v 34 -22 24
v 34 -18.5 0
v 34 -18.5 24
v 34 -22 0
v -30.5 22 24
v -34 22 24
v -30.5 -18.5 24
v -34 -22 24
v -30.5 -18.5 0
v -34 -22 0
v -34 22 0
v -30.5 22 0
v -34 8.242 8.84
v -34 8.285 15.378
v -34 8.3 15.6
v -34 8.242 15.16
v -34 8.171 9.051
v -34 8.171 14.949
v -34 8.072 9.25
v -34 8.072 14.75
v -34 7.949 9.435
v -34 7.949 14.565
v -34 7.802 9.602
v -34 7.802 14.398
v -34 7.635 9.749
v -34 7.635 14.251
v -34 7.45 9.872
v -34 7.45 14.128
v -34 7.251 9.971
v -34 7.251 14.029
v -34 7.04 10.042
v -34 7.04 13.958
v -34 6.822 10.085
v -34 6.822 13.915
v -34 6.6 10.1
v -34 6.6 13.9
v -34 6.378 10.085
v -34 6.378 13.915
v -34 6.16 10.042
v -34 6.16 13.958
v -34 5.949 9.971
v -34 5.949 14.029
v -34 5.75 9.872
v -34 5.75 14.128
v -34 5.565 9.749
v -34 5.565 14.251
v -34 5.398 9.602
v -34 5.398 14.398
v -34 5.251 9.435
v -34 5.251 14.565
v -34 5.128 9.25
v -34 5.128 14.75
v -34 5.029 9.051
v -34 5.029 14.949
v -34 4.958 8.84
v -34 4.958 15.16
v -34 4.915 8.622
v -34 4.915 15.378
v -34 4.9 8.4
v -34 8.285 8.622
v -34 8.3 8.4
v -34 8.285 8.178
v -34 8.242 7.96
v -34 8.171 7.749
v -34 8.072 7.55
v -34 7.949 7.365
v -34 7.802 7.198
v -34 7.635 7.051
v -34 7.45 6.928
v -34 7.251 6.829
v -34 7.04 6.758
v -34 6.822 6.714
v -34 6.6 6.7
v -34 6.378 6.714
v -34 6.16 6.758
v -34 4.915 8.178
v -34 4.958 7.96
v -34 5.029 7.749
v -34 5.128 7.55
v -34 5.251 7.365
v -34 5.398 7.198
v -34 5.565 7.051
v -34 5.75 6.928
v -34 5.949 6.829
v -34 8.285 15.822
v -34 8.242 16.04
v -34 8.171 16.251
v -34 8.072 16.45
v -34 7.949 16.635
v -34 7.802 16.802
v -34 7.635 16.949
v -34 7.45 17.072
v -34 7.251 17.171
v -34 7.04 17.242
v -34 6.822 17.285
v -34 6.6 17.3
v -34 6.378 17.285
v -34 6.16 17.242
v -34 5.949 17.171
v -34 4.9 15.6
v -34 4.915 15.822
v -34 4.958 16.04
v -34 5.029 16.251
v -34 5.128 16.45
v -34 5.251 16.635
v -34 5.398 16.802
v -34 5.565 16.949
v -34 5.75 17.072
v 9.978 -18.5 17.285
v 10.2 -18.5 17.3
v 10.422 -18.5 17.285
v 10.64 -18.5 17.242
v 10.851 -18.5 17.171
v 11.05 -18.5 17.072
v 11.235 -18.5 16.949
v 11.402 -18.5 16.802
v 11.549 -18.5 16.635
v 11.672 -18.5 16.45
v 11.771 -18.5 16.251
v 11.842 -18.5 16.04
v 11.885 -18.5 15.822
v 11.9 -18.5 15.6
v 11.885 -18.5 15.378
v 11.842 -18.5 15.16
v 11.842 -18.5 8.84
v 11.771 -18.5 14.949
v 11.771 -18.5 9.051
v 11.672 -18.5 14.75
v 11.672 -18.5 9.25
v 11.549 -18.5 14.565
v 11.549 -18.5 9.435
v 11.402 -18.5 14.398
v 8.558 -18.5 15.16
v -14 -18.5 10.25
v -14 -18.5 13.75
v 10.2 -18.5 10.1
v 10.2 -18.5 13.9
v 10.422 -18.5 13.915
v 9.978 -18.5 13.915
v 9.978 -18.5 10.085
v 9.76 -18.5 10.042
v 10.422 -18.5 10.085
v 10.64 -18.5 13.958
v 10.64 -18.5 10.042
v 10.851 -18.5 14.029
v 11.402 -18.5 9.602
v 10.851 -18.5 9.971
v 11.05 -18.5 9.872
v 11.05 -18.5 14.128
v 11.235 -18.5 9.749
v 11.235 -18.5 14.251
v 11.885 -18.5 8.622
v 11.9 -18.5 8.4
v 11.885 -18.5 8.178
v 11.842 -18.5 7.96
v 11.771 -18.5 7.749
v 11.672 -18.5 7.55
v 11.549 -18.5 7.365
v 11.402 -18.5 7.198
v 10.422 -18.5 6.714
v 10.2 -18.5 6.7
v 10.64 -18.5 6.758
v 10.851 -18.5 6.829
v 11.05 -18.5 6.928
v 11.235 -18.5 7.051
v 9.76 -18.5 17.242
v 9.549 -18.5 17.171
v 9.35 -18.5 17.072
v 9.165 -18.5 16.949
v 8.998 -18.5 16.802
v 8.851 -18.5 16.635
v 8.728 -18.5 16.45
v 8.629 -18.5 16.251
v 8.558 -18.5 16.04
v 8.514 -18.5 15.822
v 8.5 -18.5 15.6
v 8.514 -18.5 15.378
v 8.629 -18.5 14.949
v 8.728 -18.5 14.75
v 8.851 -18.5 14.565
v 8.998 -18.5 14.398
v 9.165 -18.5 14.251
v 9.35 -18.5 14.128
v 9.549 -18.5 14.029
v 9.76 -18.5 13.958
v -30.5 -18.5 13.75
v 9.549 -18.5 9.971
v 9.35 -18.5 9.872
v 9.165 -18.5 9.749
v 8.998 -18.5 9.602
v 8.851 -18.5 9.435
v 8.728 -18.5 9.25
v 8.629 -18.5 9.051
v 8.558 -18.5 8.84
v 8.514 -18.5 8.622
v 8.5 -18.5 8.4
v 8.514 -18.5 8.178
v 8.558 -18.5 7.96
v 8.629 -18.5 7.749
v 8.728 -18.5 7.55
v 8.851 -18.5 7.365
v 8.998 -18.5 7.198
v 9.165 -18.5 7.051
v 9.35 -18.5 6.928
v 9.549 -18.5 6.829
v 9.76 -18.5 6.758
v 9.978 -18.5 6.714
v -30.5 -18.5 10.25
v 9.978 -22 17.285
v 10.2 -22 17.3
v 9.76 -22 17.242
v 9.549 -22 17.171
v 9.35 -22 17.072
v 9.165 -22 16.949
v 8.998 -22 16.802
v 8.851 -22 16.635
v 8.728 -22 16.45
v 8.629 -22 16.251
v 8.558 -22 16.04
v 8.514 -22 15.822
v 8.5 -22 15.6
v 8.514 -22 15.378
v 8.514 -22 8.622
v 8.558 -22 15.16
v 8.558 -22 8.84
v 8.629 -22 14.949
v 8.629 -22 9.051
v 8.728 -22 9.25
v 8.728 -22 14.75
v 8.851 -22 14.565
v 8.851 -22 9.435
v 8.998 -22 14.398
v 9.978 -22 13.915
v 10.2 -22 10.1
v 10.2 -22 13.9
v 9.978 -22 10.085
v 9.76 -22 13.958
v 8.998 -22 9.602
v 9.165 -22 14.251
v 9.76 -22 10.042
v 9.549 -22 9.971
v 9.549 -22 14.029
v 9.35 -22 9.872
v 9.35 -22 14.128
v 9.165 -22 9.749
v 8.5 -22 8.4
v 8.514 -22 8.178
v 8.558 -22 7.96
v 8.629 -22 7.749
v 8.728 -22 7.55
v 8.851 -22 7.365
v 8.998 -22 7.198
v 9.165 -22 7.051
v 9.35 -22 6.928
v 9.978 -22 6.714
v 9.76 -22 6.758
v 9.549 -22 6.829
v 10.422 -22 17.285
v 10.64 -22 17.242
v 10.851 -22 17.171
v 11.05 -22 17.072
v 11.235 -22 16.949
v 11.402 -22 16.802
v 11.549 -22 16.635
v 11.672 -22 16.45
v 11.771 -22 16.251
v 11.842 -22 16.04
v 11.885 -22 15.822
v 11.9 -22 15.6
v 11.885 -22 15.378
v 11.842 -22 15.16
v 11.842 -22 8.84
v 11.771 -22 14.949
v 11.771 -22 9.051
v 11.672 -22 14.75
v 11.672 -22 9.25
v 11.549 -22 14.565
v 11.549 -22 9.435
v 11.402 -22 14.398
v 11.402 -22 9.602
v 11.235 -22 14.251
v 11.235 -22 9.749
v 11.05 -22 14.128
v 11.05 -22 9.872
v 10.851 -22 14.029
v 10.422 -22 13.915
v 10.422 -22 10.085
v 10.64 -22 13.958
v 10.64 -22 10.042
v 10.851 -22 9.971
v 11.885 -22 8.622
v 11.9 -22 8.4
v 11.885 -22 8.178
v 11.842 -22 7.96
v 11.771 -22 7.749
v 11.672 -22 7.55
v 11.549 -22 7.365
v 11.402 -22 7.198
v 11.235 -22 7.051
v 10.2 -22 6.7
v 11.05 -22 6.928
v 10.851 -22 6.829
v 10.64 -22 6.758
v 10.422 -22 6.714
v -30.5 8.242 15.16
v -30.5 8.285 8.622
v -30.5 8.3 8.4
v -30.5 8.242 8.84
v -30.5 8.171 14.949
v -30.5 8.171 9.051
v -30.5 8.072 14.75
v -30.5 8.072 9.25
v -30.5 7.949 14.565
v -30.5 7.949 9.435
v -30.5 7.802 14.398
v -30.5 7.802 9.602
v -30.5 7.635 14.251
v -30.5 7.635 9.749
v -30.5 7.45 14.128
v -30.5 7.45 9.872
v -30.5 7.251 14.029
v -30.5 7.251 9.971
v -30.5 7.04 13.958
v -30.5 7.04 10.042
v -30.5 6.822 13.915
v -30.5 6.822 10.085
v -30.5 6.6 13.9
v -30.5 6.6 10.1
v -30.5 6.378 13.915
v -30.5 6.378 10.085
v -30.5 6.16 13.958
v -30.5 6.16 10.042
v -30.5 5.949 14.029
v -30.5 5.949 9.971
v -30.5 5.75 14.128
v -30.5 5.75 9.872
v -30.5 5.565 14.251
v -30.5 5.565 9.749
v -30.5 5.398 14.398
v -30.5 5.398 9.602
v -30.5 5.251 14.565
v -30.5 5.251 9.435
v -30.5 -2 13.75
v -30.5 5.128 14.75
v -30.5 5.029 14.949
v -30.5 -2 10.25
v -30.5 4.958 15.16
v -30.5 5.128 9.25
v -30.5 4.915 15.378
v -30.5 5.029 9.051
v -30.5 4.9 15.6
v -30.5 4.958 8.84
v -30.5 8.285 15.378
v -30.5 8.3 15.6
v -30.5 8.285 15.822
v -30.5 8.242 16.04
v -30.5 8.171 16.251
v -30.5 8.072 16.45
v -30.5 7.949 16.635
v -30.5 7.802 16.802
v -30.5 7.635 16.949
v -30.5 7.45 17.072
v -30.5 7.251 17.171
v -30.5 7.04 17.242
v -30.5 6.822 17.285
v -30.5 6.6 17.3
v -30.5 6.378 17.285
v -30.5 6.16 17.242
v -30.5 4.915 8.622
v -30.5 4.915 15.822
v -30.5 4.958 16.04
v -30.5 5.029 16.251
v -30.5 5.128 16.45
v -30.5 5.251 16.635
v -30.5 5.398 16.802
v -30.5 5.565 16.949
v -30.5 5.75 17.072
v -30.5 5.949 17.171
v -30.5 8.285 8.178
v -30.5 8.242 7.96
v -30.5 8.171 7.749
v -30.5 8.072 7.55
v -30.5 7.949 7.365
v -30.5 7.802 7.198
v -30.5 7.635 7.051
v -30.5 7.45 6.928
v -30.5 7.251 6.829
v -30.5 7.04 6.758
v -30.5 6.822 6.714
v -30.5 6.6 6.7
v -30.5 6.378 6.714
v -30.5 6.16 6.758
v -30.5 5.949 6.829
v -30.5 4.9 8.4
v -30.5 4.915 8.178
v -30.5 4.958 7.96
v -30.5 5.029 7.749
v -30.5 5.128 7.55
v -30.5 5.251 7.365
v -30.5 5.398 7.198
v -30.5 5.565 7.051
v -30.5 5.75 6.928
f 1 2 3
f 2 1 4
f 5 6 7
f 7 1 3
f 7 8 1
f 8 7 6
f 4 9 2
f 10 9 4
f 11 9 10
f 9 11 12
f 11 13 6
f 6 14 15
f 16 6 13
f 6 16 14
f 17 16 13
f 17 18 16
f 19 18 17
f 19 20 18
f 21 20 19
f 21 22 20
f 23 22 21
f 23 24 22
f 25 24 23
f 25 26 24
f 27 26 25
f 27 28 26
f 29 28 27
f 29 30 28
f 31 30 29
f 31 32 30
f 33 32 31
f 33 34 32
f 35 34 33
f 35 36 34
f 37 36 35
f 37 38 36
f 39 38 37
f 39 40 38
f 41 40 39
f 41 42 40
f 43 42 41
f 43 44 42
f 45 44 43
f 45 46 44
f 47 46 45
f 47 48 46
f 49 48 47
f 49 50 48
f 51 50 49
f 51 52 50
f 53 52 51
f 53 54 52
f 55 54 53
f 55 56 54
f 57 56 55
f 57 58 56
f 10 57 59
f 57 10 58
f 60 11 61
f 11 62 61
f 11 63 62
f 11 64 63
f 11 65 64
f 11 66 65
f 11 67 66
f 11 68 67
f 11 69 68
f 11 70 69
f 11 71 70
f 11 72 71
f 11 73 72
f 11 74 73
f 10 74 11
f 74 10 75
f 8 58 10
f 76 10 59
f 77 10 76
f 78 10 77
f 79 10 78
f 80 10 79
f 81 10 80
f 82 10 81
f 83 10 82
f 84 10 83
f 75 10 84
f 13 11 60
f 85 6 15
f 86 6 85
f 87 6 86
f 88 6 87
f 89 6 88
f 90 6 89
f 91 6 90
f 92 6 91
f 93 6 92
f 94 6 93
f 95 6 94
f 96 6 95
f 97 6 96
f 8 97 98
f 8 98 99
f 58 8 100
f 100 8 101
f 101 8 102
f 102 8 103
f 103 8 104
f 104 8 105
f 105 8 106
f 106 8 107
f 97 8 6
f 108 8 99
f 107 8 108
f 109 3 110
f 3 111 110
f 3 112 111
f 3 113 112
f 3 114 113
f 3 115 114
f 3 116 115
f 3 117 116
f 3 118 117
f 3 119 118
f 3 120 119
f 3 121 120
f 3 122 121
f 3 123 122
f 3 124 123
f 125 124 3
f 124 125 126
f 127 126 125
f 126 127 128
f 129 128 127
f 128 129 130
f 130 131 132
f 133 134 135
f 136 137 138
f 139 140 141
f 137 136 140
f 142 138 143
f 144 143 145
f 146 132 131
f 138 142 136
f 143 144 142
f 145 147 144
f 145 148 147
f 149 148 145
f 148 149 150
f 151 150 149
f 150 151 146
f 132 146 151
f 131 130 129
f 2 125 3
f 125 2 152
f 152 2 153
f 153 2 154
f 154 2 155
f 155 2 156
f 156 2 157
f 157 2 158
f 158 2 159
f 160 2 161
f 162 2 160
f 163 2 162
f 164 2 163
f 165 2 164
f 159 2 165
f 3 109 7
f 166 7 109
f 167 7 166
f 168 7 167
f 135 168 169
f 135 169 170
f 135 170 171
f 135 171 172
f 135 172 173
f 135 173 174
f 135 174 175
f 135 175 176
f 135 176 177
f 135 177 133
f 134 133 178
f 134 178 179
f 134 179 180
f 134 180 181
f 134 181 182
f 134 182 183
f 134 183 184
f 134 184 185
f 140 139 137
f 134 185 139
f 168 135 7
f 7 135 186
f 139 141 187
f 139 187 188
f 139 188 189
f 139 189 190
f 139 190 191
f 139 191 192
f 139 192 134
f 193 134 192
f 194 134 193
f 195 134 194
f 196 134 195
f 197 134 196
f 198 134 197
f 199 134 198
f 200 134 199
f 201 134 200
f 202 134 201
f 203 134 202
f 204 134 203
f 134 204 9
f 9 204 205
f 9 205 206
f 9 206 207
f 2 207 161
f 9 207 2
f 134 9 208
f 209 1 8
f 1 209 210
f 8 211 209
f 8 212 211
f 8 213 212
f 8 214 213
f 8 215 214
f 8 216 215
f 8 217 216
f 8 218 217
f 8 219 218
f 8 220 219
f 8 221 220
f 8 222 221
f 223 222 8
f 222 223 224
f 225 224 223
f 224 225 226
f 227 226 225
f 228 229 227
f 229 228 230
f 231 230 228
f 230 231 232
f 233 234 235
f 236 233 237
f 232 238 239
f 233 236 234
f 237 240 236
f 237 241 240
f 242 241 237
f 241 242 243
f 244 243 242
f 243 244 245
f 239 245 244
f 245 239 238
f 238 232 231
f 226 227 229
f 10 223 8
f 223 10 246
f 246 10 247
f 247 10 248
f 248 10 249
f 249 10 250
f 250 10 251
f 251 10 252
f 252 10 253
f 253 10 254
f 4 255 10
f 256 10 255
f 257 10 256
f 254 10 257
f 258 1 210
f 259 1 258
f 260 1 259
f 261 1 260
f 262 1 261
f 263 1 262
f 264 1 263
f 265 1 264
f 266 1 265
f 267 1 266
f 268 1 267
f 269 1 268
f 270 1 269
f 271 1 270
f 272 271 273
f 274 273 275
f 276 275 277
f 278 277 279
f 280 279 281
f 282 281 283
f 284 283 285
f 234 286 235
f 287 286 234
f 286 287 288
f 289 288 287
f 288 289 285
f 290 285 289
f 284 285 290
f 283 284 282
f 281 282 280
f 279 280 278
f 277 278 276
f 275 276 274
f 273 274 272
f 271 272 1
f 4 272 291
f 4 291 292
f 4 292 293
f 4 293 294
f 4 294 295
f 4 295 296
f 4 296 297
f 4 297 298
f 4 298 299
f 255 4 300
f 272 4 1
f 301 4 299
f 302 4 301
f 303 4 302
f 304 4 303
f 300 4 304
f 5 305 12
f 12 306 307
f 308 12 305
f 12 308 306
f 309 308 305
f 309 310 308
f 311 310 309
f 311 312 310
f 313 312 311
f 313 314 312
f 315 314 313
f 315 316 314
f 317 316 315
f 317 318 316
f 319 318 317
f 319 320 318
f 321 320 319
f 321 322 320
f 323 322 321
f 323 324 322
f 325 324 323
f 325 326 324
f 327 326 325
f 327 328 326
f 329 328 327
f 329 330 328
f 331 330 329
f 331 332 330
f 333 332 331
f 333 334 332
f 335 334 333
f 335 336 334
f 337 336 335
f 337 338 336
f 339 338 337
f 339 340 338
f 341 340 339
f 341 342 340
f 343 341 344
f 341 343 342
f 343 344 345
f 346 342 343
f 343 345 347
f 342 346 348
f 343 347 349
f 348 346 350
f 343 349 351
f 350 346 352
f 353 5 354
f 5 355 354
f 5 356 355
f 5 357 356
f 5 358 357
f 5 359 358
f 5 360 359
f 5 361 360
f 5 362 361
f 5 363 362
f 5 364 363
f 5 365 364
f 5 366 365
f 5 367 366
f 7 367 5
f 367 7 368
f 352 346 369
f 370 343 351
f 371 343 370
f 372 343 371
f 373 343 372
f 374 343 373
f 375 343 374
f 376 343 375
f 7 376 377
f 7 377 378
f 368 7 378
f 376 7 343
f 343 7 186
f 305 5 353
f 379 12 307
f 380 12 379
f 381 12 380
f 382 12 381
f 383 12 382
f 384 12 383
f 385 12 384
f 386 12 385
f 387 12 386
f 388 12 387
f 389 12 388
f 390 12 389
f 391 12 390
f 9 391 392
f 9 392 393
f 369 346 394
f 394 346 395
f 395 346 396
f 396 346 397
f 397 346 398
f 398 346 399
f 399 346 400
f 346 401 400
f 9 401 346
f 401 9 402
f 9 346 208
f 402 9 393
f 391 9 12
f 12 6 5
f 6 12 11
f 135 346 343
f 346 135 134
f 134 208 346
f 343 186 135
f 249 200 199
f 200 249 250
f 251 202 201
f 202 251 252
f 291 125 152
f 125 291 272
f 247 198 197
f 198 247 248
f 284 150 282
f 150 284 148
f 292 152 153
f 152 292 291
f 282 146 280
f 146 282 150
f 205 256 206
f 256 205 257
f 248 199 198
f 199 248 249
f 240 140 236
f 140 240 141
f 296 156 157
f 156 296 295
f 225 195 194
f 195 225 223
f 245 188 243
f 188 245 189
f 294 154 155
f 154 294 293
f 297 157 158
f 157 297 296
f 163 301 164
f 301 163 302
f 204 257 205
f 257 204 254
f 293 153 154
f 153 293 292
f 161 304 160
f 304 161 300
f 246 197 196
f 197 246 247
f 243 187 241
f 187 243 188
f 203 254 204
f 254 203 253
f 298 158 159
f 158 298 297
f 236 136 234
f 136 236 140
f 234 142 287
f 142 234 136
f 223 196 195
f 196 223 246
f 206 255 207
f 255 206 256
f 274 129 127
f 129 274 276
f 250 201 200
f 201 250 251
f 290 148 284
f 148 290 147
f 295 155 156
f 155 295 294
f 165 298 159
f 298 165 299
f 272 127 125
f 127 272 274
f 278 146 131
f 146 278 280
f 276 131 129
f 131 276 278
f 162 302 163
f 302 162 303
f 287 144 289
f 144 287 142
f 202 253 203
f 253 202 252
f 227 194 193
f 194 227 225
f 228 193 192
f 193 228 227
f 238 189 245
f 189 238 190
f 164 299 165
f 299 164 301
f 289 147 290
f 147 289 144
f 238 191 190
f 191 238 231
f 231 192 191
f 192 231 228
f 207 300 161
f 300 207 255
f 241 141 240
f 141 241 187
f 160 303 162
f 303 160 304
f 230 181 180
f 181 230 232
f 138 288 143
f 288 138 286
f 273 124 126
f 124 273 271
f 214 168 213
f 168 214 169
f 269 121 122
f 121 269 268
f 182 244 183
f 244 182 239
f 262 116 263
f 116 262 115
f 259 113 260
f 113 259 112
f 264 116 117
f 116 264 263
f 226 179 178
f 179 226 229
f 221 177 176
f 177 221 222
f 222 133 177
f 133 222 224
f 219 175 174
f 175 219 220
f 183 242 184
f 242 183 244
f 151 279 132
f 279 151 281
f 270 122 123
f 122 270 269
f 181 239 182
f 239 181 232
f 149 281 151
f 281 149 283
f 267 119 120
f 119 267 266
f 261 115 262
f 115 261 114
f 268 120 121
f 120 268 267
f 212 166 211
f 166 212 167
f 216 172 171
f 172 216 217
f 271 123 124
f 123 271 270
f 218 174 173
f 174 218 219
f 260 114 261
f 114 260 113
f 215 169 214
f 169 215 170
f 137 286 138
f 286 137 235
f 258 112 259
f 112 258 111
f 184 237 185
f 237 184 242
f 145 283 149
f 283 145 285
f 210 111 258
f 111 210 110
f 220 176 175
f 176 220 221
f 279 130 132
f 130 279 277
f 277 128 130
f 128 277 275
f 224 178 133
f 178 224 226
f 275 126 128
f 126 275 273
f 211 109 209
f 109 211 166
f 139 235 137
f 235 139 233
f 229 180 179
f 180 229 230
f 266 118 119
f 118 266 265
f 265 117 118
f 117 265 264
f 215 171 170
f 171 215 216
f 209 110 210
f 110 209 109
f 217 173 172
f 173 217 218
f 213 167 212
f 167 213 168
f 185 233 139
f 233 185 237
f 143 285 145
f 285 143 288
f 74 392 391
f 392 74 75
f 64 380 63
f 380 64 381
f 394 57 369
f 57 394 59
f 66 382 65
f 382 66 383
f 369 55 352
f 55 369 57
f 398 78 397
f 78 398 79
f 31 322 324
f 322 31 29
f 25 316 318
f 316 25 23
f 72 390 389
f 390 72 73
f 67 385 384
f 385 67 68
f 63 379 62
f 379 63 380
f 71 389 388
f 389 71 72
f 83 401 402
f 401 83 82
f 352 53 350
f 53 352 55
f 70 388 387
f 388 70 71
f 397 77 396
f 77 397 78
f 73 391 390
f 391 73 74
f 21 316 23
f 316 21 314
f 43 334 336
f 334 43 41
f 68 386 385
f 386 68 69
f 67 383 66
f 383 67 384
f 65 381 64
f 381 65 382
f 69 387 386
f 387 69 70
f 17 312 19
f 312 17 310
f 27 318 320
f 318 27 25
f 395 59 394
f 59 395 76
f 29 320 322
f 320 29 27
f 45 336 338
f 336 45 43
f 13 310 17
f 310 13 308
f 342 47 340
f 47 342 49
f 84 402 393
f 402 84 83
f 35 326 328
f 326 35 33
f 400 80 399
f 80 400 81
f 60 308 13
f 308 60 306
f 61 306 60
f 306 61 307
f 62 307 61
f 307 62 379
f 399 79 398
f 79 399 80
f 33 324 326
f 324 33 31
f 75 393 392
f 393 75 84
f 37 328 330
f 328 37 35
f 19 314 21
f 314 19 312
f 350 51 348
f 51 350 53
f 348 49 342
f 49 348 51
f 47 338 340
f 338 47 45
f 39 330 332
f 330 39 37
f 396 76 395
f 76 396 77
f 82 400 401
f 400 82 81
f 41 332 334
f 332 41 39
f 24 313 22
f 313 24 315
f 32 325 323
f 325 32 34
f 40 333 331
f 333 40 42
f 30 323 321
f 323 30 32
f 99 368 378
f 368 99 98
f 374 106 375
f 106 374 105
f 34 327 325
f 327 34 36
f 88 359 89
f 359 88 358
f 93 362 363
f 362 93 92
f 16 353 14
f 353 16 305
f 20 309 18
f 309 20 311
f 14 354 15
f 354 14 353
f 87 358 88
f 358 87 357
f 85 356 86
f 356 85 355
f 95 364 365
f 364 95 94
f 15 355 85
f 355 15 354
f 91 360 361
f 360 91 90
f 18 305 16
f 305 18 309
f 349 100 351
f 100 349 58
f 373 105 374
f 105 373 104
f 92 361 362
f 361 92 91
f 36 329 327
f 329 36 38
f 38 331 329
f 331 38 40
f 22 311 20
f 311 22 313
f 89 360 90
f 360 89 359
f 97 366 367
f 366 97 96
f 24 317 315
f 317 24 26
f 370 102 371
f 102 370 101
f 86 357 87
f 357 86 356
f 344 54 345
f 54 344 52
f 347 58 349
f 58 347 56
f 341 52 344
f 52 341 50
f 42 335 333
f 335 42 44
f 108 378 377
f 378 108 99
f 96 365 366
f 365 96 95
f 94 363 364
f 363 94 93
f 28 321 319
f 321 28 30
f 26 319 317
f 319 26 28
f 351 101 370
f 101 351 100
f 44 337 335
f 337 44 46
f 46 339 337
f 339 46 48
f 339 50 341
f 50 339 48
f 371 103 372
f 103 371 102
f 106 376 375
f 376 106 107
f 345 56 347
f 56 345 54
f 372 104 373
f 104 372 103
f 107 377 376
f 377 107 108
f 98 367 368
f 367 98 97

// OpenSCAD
// ============================================================================
// Get Me An Alt — Parametric OpenSCAD Module
// Part: PRT-09 — Front PWM Dial Bezel & Harness Retention Clips (×2) (control-bezel-pod)
// Function: Mounts user speed knob and air-quality sensor on the front neck.
// Target Bounding Box (mm): [68, 44, 24]
// Print Material: PLA+ | Min Wall: >= 1.6mm | Tolerance: 0.2mm
// ============================================================================
$fn = 48;
part_width = 68;
part_depth = 44;
part_height = 24;
wall_thickness = 3;
floor_thickness = 3;
corner_radius = 4;
tolerance = 0.2;
m3_clearance_d = 3.4; // M3 screw clearance hole (3.0mm + 2*0.2mm)

module rounded_rect_prism(w, d, h, r) {
  cr = max(0.5, min(r, min(w, d) / 2 - 0.1));
  linear_extrude(height = h)
    offset(r = cr)
      offset(r = -cr)
        square([w, d], center = true);
}

module part_control_bezel_pod() {
  t = 3.5;
  translate([-part_width / 2, -part_depth / 2, 0])
  difference() {
    union() {
      // Horizontal leg A
      cube([part_width, t, part_height]);
      // Vertical leg B
      cube([t, part_depth, part_height]);
      // Corner gusset rib
      translate([0, 0, part_height * 0.5 - t * 0.5])
        linear_extrude(height = t)
          polygon(points = [[t, t], [min(part_width * 0.55, 20), t], [t, min(part_depth * 0.55, 20)]]);
    }
    // M3 mounting holes on leg A
    translate([part_width * 0.65, t + 1, part_height * 0.35])
      rotate([90, 0, 0]) cylinder(h = t + 2, d = m3_clearance_d);
    translate([part_width * 0.65, t + 1, part_height * 0.65])
      rotate([90, 0, 0]) cylinder(h = t + 2, d = m3_clearance_d);
    // M3 mounting holes on leg B
    translate([-1, part_depth * 0.65, part_height * 0.35])
      rotate([0, 90, 0]) cylinder(h = t + 2, d = m3_clearance_d);
    translate([-1, part_depth * 0.65, part_height * 0.65])
      rotate([0, 90, 0]) cylinder(h = t + 2, d = m3_clearance_d);
  }
}

part_control_bezel_pod();
